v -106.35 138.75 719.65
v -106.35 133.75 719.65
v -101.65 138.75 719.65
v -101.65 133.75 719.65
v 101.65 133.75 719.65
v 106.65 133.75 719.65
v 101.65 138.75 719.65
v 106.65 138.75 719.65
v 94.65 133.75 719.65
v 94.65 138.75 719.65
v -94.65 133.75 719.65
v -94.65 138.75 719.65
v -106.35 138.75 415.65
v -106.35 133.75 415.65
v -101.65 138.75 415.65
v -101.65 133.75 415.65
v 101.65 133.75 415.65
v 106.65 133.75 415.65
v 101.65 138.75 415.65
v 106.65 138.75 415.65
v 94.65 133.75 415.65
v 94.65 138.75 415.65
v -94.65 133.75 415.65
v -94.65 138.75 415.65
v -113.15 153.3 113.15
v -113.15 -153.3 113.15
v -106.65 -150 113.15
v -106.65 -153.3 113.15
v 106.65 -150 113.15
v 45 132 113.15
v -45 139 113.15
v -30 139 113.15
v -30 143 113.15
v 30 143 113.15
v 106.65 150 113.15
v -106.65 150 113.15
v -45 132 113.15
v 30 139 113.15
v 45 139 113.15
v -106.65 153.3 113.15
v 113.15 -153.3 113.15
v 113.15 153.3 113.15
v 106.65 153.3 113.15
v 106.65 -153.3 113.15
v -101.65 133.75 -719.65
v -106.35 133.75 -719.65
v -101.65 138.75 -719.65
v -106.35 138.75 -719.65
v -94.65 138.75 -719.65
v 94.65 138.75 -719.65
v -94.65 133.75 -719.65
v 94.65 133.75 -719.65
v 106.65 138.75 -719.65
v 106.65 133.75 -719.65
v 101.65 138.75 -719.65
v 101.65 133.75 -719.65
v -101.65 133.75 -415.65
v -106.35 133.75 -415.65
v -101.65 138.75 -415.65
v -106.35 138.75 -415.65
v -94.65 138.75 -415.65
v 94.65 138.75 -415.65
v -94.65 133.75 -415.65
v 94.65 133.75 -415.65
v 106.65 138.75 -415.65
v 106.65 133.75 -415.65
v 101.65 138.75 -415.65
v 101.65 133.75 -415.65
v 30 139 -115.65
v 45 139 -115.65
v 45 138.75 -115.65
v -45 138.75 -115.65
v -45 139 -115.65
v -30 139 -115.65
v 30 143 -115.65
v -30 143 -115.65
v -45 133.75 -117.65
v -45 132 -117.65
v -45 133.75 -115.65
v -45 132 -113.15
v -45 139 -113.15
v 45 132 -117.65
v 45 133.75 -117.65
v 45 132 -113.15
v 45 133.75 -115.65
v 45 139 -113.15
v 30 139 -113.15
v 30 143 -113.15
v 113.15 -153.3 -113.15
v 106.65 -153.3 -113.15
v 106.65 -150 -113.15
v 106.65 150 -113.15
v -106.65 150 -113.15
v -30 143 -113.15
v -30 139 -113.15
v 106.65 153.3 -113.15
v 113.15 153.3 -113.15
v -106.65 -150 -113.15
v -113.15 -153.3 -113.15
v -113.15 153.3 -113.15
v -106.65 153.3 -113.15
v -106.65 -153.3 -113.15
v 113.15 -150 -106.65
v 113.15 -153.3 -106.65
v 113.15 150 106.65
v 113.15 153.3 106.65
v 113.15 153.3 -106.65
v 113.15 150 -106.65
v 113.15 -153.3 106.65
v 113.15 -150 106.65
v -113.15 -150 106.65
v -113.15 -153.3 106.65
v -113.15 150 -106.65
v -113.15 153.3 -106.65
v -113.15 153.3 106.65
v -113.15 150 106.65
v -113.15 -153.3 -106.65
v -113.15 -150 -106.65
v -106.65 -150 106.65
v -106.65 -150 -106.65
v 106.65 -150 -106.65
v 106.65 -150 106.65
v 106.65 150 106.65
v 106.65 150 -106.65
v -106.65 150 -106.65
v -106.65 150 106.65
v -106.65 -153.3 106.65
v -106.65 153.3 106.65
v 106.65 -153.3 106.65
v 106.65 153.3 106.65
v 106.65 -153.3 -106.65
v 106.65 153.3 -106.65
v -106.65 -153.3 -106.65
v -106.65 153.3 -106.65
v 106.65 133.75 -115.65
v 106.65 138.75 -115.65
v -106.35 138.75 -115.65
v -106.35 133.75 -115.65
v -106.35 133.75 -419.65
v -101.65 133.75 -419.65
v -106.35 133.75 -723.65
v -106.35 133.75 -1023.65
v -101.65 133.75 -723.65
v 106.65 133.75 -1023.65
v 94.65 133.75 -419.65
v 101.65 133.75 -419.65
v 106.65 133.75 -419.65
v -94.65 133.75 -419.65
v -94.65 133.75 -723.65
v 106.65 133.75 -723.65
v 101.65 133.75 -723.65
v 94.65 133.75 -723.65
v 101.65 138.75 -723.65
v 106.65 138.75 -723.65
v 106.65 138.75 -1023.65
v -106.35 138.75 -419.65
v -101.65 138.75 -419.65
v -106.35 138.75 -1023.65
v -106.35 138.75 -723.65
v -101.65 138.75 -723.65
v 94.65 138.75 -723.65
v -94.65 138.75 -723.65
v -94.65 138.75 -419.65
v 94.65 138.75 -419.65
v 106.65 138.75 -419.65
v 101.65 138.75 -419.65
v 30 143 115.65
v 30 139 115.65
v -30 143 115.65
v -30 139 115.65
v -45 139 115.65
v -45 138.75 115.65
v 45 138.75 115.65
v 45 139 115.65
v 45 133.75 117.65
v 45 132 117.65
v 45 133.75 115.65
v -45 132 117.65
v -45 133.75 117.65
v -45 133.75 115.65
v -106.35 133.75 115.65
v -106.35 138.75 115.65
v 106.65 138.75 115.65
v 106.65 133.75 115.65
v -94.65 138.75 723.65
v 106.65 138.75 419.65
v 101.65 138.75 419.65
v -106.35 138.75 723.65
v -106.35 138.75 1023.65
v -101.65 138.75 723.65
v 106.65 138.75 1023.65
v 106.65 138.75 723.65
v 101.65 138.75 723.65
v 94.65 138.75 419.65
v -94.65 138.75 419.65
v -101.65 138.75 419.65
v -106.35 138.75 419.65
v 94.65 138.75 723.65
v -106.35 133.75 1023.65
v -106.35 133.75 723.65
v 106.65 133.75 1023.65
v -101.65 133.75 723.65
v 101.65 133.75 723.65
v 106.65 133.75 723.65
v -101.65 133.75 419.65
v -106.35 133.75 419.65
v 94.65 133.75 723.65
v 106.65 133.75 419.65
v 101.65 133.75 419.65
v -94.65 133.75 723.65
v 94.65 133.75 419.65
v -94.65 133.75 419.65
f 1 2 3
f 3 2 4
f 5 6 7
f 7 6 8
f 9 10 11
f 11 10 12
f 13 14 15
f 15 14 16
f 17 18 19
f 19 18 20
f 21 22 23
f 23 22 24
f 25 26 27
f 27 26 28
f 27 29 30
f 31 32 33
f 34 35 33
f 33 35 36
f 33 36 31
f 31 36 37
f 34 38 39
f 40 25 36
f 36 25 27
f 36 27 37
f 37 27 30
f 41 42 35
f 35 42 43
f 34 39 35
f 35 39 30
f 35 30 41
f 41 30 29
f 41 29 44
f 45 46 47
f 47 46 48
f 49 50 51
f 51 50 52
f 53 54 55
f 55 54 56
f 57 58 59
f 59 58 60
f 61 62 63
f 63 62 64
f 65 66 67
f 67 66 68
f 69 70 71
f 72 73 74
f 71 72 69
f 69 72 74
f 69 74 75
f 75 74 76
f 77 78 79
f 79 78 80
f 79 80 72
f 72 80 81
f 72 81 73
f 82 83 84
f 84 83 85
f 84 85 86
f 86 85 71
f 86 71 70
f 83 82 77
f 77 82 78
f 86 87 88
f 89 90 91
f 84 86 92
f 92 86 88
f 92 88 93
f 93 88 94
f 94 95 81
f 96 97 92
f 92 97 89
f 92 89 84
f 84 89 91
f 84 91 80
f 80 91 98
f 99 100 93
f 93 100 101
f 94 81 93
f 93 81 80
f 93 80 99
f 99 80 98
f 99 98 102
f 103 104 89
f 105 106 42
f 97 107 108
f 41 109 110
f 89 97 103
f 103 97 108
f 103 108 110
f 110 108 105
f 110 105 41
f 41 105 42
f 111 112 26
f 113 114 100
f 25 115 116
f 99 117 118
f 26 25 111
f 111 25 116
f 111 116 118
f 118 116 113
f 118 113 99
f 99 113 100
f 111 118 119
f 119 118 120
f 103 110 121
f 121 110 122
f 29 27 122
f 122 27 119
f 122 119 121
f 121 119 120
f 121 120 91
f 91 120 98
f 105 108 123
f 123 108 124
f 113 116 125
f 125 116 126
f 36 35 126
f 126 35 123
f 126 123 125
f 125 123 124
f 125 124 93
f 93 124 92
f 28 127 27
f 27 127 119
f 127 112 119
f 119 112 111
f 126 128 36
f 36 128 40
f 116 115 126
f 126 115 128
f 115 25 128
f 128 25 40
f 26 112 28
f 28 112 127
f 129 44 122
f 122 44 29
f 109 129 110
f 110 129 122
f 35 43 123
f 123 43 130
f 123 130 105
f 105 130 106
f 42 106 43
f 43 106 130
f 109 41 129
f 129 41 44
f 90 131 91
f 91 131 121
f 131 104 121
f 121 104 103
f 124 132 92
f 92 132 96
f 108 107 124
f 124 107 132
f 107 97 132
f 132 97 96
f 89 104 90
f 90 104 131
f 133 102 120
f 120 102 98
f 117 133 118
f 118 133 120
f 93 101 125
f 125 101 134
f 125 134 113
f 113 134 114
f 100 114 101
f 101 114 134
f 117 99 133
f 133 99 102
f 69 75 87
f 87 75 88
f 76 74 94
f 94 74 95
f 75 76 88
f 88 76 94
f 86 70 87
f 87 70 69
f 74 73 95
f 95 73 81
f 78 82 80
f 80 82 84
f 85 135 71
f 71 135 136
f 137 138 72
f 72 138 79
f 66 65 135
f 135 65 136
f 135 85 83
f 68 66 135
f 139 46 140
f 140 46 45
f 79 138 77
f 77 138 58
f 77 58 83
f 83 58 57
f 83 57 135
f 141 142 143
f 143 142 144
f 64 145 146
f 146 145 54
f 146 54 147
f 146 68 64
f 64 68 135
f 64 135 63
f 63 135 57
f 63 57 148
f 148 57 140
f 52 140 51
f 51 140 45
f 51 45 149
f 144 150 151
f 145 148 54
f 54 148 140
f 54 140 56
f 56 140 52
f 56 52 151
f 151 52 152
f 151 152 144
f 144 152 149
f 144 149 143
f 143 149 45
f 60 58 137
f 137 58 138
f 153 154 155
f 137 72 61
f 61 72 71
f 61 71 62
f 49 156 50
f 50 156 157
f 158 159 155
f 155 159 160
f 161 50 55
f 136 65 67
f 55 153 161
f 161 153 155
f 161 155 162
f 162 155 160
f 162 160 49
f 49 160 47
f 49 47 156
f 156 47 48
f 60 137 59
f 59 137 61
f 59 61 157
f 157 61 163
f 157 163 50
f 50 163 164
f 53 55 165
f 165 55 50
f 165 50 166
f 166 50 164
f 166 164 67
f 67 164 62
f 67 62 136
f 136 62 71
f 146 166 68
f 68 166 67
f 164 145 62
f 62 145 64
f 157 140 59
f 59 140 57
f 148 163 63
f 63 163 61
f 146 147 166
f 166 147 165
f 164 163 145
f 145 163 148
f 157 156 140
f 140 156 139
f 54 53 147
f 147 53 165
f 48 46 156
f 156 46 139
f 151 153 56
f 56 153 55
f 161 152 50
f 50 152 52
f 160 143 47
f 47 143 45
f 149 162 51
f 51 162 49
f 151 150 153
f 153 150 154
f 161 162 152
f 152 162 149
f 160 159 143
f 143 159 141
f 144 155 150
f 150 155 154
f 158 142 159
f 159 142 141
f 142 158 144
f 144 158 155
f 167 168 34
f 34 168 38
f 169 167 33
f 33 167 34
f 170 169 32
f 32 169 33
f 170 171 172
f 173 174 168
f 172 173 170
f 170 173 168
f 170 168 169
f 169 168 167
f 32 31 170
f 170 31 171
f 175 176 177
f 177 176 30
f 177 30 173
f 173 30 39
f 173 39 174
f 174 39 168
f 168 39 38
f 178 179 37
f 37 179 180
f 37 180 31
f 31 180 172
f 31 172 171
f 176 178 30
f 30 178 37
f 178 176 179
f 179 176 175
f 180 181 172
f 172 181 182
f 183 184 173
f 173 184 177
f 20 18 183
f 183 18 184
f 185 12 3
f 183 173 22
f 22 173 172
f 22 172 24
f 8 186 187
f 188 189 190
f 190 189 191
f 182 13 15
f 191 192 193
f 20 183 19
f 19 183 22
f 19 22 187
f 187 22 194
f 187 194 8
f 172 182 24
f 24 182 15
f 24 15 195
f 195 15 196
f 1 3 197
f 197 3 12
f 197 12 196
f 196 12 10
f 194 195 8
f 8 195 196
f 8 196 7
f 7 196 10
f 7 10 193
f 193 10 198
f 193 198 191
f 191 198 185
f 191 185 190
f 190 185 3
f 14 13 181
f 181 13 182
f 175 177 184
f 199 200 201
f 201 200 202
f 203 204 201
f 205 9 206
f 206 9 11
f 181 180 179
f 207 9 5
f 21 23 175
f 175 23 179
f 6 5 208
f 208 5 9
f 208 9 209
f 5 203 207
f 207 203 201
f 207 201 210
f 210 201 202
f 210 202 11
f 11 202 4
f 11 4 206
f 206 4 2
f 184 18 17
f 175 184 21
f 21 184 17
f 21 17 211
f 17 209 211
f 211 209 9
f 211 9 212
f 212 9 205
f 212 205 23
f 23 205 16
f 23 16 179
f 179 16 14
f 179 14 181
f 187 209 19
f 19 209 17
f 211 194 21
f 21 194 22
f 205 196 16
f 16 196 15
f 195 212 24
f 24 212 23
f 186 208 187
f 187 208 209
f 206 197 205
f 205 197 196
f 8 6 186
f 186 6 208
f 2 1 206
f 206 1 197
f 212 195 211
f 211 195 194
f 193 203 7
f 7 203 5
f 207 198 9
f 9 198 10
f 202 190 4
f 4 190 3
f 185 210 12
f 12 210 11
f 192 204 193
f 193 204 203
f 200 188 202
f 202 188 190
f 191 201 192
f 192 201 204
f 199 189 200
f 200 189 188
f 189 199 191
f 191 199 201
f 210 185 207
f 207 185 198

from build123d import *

# Parameters (mm, degrees)
ESTRUSIONE_ESTRUSIONE2_DEPTH      = 150
ESTRUSIONE_ESTRUSIONE2_DEPTH_BACK = 150
ESTRUSIONE_ESTRUSIONE3_DEPTH      = 3.3
ESTRUSIONE_ESTRUSIONE3_DEPTH_BACK = 303.3
SCHIZZO3_W                        = 6.5
SCHIZZO3_H                        = 6.5
SCHIZZO11_W                       = 60
SCHIZZO11_H                       = 4
ESTRUSIONE_ESTRUSIONE10_DEPTH     = 2.5
ESTRUSIONE_ESTRUSIONE11_DEPTH     = 2.5
ESTRUSIONE_ESTRUSIONE12_DEPTH     = 4.5
SCHIZZO13_W                       = 213
SCHIZZO13_H                       = 5
ESTRUSIONE_ESTRUSIONE13_DEPTH     = 300
SCHIZZO15_W                       = 7
SCHIZZO15_H                       = 5
ESTRUSIONE_ESTRUSIONE14_DEPTH     = 4
SCHIZZO16_W                       = 213
SCHIZZO16_H                       = 5
ESTRUSIONE_ESTRUSIONE15_DEPTH     = 300
RIPETIZIONE_A_L2_COUNT            = 2
RIPETIZIONE_A_L2_PITCH            = 304
SPECCHIA2_COPY_1_SKETCH_W         = 7
SPECCHIA2_COPY_1_SKETCH_H         = 5
SPECCHIA2_COPY_1_DEPTH            = 4
SPECCHIA2_COPY_2_SKETCH_W         = 213
SPECCHIA2_COPY_2_SKETCH_H         = 5
SPECCHIA2_COPY_2_DEPTH            = 300


with BuildPart() as part:
    # Schizzo2 → Estrusione-Estrusione2 (new, two sides: drawn at the far end of the back side and taken through both)
    with BuildSketch(Plane(origin=(0, 0, 0), x_dir=(1, 0, 0), z_dir=(0, 1, 0)).offset(-ESTRUSIONE_ESTRUSIONE2_DEPTH_BACK)):
        Polygon((-113.15, 106.65), (-113.15, -106.65), (-106.65, -106.65), (-106.65, -113.15), (106.65, -113.15), (106.65, -106.65), (113.15, -106.65), (113.15, 106.65), (106.65, 106.65), (106.65, 113.15), (-106.65, 113.15), (-106.65, 106.65), align=None)
    extrude(amount=ESTRUSIONE_ESTRUSIONE2_DEPTH + ESTRUSIONE_ESTRUSIONE2_DEPTH_BACK)

    # Schizzo3 → Estrusione-Estrusione3 (add, two sides: drawn at the far end of the back side and taken through both)
    with BuildSketch(Plane.XZ.offset(150).offset(-ESTRUSIONE_ESTRUSIONE3_DEPTH_BACK)):
        with Locations((-109.9, 109.9)):
            Rectangle(SCHIZZO3_W, SCHIZZO3_H)
        with Locations((109.9, 109.9)):
            Rectangle(SCHIZZO3_W, SCHIZZO3_H)
        with Locations((109.9, -109.9)):
            Rectangle(SCHIZZO3_W, SCHIZZO3_H)
        with Locations((-109.9, -109.9)):
            Rectangle(SCHIZZO3_W, SCHIZZO3_H)
    extrude(amount=ESTRUSIONE_ESTRUSIONE3_DEPTH + ESTRUSIONE_ESTRUSIONE3_DEPTH_BACK)

    # Schizzo11 → Estrusione-Estrusione10 (add)
    with BuildSketch(Plane(origin=(0, 0, -113.15), x_dir=(-1, 0, 0), z_dir=(0, 0, -1))):
        with Locations((0, 141)):
            Rectangle(SCHIZZO11_W, SCHIZZO11_H)
    estrusione_estrusione10 = extrude(amount=ESTRUSIONE_ESTRUSIONE10_DEPTH)

    # Schizzo11<5> → Estrusione-Estrusione11 (add)
    with BuildSketch(Plane(origin=(0, 0, -113.15), x_dir=(-1, 0, 0), z_dir=(0, 0, -1))):
        Polygon((30, 139), (-30, 139), (-45, 139), (-45, 135.5), (-43, 135.5), (-43, 133.75), (0, 133.75), (43, 133.75), (43, 135.5), (45, 135.5), (45, 139), align=None)
    estrusione_estrusione11 = extrude(amount=ESTRUSIONE_ESTRUSIONE11_DEPTH)

    # Schizzo11<8> → Estrusione-Estrusione12 (add)
    with BuildSketch(Plane(origin=(0, 0, -113.15), x_dir=(-1, 0, 0), z_dir=(0, 0, -1))):
        Polygon((-43, 135.5), (-45, 135.5), (-45, 132), (45, 132), (45, 135.5), (43, 135.5), (43, 133.75), (-43, 133.75), align=None)
    estrusione_estrusione12 = extrude(amount=ESTRUSIONE_ESTRUSIONE12_DEPTH)

    # Schizzo13 → Estrusione-Estrusione13 (add)
    with BuildSketch(Plane(origin=(0, 0, -115.65), x_dir=(-1, 0, 0), z_dir=(0, 0, -1))):
        with Locations((-0.15, 136.25)):
            Rectangle(SCHIZZO13_W, SCHIZZO13_H)
    estrusione_estrusione13 = extrude(amount=ESTRUSIONE_ESTRUSIONE13_DEPTH)

    # Schizzo15 → Estrusione-Estrusione14 (add)
    with BuildSketch(Plane(origin=(0, 0, -415.65), x_dir=(-1, 0, 0), z_dir=(0, 0, -1))):
        with Locations((-98.15, 136.25)):
            Rectangle(SCHIZZO15_W, SCHIZZO15_H)
        with Locations((98.15, 136.25)):
            Rectangle(SCHIZZO15_W, SCHIZZO15_H)
    estrusione_estrusione14 = extrude(amount=ESTRUSIONE_ESTRUSIONE14_DEPTH)

    # Schizzo16 → Estrusione-Estrusione15 (add)
    with BuildSketch(Plane(origin=(0, 0, -419.65), x_dir=(-1, 0, 0), z_dir=(0, 0, -1))):
        with Locations((-0.15, 136.25)):
            Rectangle(SCHIZZO16_W, SCHIZZO16_H)
    estrusione_estrusione15 = extrude(amount=ESTRUSIONE_ESTRUSIONE15_DEPTH)

    # Ripetizione a L2: Estrusione-Estrusione14, Estrusione-Estrusione15 ×2
    with Locations(*[(0, 0, -i * RIPETIZIONE_A_L2_PITCH) for i in range(1, RIPETIZIONE_A_L2_COUNT)]):
        add(estrusione_estrusione14)
        add(estrusione_estrusione15)

    # Specchia2: Estrusione-Estrusione10, Estrusione-Estrusione11, Estrusione-Estrusione12, Estrusione-Estrusione13, Estrusione-Estrusione14, Estrusione-Estrusione15 across plane
    add(estrusione_estrusione10.mirror(Plane.XY))
    add(estrusione_estrusione11.mirror(Plane.XY))
    add(estrusione_estrusione12.mirror(Plane.XY))
    add(estrusione_estrusione13.mirror(Plane.XY))
    add(estrusione_estrusione14.mirror(Plane.XY))
    add(estrusione_estrusione15.mirror(Plane.XY))

    # Specchia2 copy 1 sketch → Specchia2 copy 1 (add)
    with BuildSketch(Plane(origin=(0, 0, 719.65), x_dir=(-1, 0, 0), z_dir=(0, 0, 1))):
        with Locations((-98.15, -136.25)):
            Rectangle(SPECCHIA2_COPY_1_SKETCH_W, SPECCHIA2_COPY_1_SKETCH_H)
        with Locations((98.15, -136.25)):
            Rectangle(SPECCHIA2_COPY_1_SKETCH_W, SPECCHIA2_COPY_1_SKETCH_H)
    extrude(amount=SPECCHIA2_COPY_1_DEPTH)

    # Specchia2 copy 2 sketch → Specchia2 copy 2 (add)
    with BuildSketch(Plane(origin=(0, 0, 723.65), x_dir=(-1, 0, 0), z_dir=(0, 0, 1))):
        with Locations((-0.15, -136.25)):
            Rectangle(SPECCHIA2_COPY_2_SKETCH_W, SPECCHIA2_COPY_2_SKETCH_H)
    extrude(amount=SPECCHIA2_COPY_2_DEPTH)


solid = part.part
